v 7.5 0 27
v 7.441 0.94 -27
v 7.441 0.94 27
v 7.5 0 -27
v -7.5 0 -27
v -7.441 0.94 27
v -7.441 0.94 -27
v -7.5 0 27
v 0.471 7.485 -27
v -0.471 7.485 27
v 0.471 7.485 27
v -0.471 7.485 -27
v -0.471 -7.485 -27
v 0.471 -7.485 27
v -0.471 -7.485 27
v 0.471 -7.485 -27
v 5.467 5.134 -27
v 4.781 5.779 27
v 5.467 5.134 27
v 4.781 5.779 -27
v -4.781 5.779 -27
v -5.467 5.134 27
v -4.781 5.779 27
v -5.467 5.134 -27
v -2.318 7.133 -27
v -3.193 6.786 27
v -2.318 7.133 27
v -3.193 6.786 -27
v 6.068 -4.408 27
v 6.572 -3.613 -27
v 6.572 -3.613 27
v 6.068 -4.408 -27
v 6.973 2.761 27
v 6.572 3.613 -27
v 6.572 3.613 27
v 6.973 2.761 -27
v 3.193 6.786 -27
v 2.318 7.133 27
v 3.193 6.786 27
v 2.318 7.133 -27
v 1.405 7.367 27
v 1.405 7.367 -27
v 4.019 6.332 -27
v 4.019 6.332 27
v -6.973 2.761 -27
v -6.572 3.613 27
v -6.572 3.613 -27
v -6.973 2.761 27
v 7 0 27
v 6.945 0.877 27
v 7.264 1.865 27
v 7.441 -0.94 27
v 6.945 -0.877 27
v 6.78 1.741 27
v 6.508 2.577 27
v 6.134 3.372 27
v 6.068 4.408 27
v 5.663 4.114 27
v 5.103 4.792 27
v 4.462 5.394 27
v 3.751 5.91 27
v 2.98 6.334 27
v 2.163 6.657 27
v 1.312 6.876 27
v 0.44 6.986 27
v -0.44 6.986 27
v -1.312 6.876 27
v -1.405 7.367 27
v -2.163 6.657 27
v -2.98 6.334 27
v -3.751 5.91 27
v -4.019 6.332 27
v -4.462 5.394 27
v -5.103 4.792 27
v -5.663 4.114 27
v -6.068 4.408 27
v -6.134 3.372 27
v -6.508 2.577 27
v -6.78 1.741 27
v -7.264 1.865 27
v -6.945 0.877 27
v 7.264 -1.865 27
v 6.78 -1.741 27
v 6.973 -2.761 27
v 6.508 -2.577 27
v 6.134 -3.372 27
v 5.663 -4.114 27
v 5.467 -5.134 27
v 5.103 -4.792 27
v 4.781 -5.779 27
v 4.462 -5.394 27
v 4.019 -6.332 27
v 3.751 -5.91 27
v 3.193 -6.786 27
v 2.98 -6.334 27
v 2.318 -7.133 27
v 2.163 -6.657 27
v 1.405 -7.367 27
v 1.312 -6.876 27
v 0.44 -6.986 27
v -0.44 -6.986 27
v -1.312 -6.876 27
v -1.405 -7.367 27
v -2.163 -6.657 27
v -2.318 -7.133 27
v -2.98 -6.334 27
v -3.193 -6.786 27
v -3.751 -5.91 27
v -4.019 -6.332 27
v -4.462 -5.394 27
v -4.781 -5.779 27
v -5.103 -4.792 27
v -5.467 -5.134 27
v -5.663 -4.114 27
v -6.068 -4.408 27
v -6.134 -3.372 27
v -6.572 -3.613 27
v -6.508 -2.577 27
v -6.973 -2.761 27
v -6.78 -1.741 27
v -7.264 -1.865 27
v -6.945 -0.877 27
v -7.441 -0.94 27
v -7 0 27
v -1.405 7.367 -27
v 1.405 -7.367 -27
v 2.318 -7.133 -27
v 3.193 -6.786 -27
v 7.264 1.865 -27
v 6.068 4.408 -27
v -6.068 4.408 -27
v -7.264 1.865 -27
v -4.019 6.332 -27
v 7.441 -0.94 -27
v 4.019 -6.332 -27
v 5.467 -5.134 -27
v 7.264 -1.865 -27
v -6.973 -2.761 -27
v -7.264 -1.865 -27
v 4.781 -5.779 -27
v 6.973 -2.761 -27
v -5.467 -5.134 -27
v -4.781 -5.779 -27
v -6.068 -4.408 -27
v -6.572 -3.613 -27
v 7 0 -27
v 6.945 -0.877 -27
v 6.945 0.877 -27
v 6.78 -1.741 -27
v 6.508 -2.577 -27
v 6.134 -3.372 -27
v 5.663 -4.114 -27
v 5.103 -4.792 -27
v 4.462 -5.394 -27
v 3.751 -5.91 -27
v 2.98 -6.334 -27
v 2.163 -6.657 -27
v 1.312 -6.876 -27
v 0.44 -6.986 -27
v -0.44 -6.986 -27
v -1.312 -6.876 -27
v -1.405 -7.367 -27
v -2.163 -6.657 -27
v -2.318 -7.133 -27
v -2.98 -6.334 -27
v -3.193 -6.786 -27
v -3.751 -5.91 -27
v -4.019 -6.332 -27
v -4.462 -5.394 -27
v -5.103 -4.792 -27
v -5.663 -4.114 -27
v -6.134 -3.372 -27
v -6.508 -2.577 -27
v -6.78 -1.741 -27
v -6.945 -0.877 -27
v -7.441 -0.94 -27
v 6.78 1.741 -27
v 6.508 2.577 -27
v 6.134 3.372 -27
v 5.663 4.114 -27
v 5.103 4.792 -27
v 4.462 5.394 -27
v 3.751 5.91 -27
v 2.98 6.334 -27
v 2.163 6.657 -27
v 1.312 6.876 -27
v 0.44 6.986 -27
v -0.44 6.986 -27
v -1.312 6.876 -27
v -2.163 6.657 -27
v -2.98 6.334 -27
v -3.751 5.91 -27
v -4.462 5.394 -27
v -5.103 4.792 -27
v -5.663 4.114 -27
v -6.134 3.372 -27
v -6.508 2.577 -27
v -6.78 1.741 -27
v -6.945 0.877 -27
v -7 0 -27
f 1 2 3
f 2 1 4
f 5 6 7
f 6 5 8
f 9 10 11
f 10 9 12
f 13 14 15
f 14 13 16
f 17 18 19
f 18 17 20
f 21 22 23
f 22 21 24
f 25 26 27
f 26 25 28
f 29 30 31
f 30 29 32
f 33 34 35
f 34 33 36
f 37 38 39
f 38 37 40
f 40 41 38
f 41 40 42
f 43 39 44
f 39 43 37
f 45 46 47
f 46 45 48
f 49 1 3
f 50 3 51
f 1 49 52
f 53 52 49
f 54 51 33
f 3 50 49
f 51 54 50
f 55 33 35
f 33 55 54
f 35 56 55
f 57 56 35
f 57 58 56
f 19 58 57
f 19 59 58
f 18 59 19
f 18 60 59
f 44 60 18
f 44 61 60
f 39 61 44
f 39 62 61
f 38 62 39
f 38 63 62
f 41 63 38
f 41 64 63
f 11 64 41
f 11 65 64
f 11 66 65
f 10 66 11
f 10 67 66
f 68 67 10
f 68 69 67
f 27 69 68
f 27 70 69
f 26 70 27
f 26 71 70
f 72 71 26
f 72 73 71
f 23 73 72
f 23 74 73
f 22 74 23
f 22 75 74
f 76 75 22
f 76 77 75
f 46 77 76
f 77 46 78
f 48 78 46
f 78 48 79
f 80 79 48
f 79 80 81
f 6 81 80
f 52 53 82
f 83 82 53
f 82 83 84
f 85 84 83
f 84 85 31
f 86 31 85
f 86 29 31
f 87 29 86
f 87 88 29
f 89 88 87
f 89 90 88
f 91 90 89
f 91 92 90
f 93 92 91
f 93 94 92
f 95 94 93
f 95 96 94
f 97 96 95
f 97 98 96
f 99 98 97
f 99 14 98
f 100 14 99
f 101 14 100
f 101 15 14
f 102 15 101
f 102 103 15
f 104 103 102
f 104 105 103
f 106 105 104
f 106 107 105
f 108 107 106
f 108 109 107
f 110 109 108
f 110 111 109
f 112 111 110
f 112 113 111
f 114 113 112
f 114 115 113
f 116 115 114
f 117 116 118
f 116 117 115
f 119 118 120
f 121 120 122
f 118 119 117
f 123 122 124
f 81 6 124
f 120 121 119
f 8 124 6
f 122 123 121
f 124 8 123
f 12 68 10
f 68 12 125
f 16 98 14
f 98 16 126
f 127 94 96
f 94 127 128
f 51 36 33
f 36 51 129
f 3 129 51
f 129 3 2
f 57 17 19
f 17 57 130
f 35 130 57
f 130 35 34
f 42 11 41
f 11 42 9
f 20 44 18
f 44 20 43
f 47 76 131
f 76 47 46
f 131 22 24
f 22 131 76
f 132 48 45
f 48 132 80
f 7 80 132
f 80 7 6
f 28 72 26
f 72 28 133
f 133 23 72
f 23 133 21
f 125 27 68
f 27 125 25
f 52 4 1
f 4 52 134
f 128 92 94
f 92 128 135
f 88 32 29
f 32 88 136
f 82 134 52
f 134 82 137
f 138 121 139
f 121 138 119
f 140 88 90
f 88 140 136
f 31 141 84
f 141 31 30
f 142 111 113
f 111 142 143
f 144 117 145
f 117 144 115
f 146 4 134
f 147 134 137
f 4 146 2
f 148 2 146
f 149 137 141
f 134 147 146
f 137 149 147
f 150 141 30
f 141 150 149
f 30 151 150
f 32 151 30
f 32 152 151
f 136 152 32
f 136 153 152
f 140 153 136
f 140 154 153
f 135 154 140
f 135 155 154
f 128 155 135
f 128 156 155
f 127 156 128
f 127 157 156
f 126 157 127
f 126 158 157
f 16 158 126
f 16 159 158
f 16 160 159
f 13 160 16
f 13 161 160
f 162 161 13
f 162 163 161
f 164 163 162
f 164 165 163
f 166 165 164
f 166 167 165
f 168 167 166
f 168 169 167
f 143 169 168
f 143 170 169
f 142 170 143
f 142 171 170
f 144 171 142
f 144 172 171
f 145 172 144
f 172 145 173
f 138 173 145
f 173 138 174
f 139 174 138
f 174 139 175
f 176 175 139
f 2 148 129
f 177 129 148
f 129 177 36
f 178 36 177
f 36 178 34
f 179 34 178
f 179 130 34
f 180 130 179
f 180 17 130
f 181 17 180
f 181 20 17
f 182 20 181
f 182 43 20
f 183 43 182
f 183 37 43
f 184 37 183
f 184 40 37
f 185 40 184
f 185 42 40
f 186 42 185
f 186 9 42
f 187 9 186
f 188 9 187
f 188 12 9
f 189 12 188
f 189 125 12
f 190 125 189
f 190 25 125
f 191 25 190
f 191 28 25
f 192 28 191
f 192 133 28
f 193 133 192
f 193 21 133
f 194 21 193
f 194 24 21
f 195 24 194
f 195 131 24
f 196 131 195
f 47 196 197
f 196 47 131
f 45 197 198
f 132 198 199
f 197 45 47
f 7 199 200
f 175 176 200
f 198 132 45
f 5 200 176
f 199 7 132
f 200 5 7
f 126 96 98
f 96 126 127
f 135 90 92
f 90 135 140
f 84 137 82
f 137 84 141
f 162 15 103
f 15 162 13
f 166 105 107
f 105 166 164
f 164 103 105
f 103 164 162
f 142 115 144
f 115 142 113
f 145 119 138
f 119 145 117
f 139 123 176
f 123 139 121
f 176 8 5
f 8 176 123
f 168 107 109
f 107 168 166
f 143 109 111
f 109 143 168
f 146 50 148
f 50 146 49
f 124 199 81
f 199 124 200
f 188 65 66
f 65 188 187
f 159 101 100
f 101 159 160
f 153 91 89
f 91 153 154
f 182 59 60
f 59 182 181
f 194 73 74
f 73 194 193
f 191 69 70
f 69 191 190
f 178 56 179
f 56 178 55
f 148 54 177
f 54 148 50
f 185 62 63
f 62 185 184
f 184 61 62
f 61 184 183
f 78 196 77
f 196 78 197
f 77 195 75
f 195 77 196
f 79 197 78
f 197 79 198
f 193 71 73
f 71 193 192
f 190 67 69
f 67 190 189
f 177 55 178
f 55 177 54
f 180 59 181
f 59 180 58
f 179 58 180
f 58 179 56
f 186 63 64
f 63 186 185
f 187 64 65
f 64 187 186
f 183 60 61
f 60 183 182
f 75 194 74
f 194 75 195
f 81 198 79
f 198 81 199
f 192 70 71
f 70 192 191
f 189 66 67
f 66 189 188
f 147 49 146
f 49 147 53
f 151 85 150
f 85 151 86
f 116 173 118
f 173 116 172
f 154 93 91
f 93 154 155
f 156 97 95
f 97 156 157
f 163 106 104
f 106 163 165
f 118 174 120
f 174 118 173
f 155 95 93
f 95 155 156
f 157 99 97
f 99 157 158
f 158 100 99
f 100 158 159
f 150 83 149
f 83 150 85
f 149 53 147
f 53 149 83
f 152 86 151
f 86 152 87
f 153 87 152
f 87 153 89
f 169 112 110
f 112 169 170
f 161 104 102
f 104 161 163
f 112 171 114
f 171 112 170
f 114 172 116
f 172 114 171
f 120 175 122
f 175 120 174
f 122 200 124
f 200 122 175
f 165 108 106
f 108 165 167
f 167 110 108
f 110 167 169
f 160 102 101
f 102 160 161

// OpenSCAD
$fn = 50;


difference() {
	union() {
		translate(v = [0, 0, -27.0000000000]) {
			cylinder(h = 54, r = 7.5000000000);
		}
	}
	union() {
		translate(v = [0, 0, -100.0000000000]) {
			cylinder(h = 200, r = 7);
		}
	}
}
